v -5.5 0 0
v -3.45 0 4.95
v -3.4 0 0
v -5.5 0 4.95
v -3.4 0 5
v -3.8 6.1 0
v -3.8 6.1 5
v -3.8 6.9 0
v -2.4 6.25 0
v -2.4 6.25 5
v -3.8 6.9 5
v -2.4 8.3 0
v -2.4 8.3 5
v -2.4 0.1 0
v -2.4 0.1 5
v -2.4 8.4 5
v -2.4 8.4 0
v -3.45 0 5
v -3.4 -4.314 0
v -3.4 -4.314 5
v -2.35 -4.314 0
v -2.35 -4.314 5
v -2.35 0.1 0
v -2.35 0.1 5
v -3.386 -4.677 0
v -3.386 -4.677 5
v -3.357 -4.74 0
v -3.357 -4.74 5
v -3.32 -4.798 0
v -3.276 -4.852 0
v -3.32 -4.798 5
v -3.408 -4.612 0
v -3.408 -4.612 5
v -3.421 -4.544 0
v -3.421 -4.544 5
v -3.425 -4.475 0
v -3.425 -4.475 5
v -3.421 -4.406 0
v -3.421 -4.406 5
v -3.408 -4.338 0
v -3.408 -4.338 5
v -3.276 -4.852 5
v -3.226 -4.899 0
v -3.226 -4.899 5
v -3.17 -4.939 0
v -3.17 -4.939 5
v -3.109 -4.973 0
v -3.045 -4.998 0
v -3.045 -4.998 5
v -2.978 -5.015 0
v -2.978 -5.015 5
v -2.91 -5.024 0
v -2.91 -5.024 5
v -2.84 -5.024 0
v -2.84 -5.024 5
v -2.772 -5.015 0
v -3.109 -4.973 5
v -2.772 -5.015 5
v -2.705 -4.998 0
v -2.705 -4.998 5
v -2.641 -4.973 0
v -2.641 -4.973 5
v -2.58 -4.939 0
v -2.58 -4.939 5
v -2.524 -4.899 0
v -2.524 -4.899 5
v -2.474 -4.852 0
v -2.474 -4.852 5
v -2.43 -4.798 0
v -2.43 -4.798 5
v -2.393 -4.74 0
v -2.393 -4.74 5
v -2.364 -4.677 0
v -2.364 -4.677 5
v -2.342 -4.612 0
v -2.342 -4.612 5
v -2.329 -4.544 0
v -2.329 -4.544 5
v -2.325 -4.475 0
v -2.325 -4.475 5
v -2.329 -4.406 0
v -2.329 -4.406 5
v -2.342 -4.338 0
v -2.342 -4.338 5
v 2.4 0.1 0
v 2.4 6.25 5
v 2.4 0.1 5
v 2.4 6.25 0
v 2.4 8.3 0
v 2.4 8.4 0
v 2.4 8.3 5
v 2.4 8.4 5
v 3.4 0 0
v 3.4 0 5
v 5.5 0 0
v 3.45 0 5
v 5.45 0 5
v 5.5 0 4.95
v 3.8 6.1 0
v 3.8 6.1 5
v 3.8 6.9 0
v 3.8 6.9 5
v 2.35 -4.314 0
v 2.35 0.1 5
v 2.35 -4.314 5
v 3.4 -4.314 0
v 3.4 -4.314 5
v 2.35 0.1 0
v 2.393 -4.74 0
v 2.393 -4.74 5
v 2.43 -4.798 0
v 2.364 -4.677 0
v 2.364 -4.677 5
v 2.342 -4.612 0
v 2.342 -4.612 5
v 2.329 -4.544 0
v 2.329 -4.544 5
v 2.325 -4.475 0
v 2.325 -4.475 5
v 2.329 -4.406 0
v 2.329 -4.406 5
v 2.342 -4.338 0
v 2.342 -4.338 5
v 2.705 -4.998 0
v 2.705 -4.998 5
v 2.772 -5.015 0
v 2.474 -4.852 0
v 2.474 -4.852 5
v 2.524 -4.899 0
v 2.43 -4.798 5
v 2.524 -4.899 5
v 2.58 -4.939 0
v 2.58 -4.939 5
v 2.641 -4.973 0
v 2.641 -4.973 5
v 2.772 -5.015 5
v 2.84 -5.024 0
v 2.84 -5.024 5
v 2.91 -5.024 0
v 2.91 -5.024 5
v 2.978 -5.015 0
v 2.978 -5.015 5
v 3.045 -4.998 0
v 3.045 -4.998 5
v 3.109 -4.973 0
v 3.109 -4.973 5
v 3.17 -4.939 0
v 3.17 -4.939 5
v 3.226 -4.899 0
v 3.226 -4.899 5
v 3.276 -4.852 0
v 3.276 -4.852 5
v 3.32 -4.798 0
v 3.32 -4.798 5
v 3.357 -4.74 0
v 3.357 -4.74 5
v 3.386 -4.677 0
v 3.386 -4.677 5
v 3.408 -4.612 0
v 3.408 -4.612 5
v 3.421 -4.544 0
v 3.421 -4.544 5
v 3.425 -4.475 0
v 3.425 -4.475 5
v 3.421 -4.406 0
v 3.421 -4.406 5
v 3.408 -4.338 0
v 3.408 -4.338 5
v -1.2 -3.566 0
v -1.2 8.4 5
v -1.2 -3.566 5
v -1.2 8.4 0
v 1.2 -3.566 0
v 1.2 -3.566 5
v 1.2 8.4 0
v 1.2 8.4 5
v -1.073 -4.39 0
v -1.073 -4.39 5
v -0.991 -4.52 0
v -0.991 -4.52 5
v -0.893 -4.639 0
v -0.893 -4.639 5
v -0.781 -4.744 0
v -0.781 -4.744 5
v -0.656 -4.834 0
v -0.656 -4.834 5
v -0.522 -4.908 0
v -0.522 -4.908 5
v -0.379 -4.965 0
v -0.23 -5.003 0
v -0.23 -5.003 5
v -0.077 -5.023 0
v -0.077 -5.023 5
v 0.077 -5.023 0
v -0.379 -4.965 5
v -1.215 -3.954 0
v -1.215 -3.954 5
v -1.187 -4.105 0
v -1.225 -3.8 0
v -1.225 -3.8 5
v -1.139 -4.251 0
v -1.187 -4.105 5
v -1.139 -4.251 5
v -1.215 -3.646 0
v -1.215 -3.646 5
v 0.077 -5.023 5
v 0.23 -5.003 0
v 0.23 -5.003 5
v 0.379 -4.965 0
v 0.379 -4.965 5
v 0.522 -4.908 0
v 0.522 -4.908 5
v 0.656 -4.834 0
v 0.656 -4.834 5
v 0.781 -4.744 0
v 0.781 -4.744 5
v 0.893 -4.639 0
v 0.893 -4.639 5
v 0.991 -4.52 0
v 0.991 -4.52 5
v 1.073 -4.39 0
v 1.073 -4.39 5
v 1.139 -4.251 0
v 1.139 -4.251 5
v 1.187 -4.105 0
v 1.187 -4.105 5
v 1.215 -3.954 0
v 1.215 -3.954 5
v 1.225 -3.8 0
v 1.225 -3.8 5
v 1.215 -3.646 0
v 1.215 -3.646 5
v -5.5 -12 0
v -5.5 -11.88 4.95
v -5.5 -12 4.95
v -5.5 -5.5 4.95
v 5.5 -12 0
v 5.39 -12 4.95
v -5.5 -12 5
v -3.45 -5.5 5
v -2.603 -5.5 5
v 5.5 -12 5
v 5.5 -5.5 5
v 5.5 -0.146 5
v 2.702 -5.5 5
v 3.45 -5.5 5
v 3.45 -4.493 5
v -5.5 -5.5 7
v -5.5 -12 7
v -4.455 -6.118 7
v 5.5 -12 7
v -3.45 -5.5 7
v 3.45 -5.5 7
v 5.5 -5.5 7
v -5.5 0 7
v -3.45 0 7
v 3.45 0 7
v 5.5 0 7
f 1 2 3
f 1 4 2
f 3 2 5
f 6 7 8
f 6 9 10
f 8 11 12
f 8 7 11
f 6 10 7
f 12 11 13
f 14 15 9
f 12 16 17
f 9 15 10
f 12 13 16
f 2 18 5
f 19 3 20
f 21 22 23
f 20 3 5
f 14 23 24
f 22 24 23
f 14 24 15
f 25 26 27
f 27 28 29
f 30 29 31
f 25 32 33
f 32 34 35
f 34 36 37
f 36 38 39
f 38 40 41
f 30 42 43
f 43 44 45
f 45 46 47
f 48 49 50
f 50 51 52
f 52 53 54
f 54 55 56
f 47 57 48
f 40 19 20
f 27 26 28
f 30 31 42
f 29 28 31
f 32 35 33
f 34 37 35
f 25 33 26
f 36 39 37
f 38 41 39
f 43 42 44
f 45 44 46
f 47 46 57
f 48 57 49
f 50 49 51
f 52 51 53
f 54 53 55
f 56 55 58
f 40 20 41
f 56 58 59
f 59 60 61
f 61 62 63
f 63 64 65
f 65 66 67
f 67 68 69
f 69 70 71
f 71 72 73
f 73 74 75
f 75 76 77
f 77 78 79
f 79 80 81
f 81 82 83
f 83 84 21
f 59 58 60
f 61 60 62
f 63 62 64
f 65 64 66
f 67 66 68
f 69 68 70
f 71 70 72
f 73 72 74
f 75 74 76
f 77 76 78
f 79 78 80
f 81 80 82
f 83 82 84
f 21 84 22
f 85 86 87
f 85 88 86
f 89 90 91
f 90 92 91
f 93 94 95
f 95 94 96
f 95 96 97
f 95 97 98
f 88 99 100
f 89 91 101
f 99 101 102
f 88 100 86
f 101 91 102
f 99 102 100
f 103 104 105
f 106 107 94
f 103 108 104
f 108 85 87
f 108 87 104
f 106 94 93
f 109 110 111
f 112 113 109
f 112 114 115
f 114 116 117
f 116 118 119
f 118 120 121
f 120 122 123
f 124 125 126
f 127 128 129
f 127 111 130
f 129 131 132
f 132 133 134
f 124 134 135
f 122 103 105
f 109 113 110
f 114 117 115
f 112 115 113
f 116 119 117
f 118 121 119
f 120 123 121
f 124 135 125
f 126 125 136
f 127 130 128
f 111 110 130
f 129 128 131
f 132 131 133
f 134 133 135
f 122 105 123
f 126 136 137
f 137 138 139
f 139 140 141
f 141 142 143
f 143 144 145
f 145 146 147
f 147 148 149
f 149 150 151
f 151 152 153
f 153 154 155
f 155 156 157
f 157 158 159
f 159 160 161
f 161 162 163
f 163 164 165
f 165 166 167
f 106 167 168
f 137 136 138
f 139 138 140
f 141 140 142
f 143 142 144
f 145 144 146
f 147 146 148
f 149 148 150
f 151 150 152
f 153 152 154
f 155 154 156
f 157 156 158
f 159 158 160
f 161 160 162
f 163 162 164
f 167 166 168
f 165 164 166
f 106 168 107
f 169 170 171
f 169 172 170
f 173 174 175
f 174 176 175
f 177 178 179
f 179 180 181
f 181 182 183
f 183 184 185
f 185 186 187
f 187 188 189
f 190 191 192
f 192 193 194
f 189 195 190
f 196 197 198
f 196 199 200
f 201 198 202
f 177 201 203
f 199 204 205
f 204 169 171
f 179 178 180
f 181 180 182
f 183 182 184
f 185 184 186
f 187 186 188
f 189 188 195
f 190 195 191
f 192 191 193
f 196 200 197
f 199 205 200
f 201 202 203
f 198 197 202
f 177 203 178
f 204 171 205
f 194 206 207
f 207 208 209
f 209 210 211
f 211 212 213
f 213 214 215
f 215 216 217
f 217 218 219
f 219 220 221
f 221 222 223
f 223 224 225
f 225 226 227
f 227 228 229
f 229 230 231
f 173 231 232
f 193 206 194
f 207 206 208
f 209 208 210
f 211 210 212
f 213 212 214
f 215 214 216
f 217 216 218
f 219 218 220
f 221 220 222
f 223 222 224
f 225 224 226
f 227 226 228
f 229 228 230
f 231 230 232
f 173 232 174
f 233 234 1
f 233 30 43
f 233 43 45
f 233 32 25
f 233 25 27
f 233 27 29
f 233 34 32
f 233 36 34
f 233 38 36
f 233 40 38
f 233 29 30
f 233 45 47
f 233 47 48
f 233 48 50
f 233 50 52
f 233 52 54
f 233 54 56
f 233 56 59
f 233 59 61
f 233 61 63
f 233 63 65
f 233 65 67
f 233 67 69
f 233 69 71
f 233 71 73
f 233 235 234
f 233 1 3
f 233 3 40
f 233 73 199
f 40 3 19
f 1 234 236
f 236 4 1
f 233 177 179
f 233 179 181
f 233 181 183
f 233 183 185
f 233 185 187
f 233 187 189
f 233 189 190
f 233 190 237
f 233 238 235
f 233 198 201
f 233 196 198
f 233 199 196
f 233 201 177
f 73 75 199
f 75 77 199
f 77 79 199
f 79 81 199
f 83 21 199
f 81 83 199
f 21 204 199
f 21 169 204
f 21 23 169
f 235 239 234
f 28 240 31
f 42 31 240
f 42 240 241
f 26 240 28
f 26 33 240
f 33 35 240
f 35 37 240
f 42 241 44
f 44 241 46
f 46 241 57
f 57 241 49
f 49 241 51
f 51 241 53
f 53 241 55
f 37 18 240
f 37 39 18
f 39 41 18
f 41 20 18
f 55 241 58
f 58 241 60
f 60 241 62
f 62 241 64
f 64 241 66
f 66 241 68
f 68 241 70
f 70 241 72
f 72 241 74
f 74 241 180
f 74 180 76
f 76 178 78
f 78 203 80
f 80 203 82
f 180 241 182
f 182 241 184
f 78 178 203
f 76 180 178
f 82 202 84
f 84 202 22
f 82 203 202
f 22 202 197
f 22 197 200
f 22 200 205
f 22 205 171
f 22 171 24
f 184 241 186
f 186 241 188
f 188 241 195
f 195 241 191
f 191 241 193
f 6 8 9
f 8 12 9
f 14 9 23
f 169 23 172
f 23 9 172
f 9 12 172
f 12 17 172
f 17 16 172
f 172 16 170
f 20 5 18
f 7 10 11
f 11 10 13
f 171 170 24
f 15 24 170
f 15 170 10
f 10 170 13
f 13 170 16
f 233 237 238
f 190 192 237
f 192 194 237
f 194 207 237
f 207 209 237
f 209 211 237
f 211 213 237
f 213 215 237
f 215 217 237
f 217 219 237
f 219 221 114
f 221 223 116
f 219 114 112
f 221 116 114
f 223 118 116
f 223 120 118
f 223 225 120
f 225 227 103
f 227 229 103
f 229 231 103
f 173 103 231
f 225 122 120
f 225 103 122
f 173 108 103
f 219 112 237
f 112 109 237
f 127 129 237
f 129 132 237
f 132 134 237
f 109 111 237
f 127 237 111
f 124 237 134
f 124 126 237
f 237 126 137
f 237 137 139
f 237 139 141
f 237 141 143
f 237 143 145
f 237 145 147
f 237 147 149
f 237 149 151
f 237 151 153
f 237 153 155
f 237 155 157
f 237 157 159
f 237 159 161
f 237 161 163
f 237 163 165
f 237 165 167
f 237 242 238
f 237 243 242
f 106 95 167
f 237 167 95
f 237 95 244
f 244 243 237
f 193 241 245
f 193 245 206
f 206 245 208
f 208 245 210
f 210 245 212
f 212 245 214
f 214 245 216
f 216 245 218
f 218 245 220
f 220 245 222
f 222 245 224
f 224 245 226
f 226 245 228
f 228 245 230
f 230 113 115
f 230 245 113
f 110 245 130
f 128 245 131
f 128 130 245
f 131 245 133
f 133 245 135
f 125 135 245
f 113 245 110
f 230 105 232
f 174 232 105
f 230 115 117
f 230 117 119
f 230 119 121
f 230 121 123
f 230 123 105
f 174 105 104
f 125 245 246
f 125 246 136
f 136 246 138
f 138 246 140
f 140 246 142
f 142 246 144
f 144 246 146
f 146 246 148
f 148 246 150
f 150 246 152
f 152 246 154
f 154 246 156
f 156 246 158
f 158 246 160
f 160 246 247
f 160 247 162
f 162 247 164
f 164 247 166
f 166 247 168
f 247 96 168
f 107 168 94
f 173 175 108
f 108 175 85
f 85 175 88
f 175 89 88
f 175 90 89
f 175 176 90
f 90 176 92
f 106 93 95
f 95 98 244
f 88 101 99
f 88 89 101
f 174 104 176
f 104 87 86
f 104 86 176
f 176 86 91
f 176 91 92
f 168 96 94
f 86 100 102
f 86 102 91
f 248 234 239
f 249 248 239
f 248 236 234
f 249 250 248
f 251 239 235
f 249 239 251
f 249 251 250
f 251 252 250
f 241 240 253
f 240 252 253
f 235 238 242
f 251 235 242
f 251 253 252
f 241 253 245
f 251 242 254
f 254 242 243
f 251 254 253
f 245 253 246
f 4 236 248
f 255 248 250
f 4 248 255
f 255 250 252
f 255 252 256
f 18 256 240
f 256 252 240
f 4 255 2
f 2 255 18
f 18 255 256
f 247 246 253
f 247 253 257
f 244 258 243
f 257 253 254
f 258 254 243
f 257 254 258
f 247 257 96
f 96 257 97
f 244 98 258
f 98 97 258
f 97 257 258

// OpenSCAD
$fn = 50;

difference() {
	union() {
		translate(v = [0, 0, 0]) {
			rotate(a = [0, 0, 0]) {
				difference() {
					union() {
						translate(v = [0, 0, 0]) {
							rotate(a = [0, 0, 0]) {
								difference() {
									union() {
										translate(v = [0, 0, 0]) {
											rotate(a = [0, 0, 0]) {
												difference() {
													union() {
														translate(v = [-5.5, -12.0, 0]) {
															cube(size = [11.0, 20.4, 5.0]);
														}
													}
													union() {
														translate(v = [0, 0, -0.1]) {
															linear_extrude(height = 5.2) {
																polygon(points = [[-2.4, 0], [-2.4, 6.25], [-3.8, 6.1], [-3.8, 6.8999999999999995], [-2.4, 8.299999999999999], [-2.4, 9.399999999999999], [-5.7, 9.399999999999999], [-5.7, 0]]);
															}
														}
														translate(v = [0, 0, -0.1]) {
															linear_extrude(height = 5.2) {
																polygon(points = [[-2.35, -4.5], [-2.35, -4.3875], [-2.35, -4.275], [-2.35, -4.1625], [-2.35, -4.05], [-2.35, -3.9375], [-2.35, -3.825], [-2.35, -3.7125], [-2.35, -3.6], [-2.35, -3.4875], [-2.35, -3.375], [-2.35, -3.2625], [-2.35, -3.15], [-2.35, -3.0375], [-2.35, -2.925], [-2.35, -2.8125], [-2.35, -2.7], [-2.35, -2.5875], [-2.35, -2.475], [-2.35, -2.3625], [-2.35, -2.25], [-2.35, -2.1375], [-2.35, -2.025], [-2.35, -1.9125], [-2.35, -1.7999999999999998], [-2.35, -1.6875], [-2.35, -1.5750000000000002], [-2.35, -1.4625], [-2.35, -1.35], [-2.35, -1.2374999999999998], [-2.35, -1.125], [-2.35, -1.0125000000000002], [-2.35, -0.8999999999999999], [-2.35, -0.7875000000000001], [-2.35, -0.6749999999999998], [-2.35, -0.5625], [-2.35, -0.4500000000000002], [-2.35, -0.33750000000000036], [-2.35, -0.22499999999999964], [-2.35, -0.11249999999999982], [-2.35, 0.0], [-2.35, 0.1], [-3.4, 0.1], [-3.4, -4.5]]);
															}
														}
														translate(v = [-2.875, -4.475, -0.1]) {
															cylinder(h = 5.2, r = 0.55);
														}
														translate(v = [0, 0, -0.1]) {
															linear_extrude(height = 5.2) {
																polygon(points = [[2.4, 0], [2.4, 6.25], [3.8, 6.1], [3.8, 6.8999999999999995], [2.4, 8.299999999999999], [2.4, 9.399999999999999], [5.7, 9.399999999999999], [5.7, 0]]);
															}
														}
														translate(v = [0, 0, -0.1]) {
															linear_extrude(height = 5.2) {
																polygon(points = [[2.35, -4.5], [2.35, -4.3875], [2.35, -4.275], [2.35, -4.1625], [2.35, -4.05], [2.35, -3.9375], [2.35, -3.825], [2.35, -3.7125], [2.35, -3.6], [2.35, -3.4875], [2.35, -3.375], [2.35, -3.2625], [2.35, -3.15], [2.35, -3.0375], [2.35, -2.925], [2.35, -2.8125], [2.35, -2.7], [2.35, -2.5875], [2.35, -2.475], [2.35, -2.3625], [2.35, -2.25], [2.35, -2.1375], [2.35, -2.025], [2.35, -1.9125], [2.35, -1.7999999999999998], [2.35, -1.6875], [2.35, -1.5750000000000002], [2.35, -1.4625], [2.35, -1.35], [2.35, -1.2374999999999998], [2.35, -1.125], [2.35, -1.0125000000000002], [2.35, -0.8999999999999999], [2.35, -0.7875000000000001], [2.35, -0.6749999999999998], [2.35, -0.5625], [2.35, -0.4500000000000002], [2.35, -0.33750000000000036], [2.35, -0.22499999999999964], [2.35, -0.11249999999999982], [2.35, 0.0], [2.35, 0.1], [3.4, 0.1], [3.4, -4.5]]);
															}
														}
														translate(v = [2.875, -4.475, -0.1]) {
															cylinder(h = 5.2, r = 0.55);
														}
														translate(v = [0, 0, -0.1]) {
															linear_extrude(height = 5.2) {
																polygon(points = [[-1.2, -3.8499999999999996], [-1.2, -3.6607142857142856], [-1.2, -3.471428571428571], [-1.2, -3.2821428571428566], [-1.2, -3.0928571428571425], [-1.2, -2.9035714285714285], [-1.2, -2.714285714285714], [-1.2, -2.5249999999999995], [-1.2, -2.3357142857142854], [-1.2, -2.1464285714285714], [-1.2, -1.9571428571428569], [-1.2, -1.7678571428571423], [-1.2, -1.5785714285714283], [-1.2, -1.3892857142857138], [-1.2, -1.1999999999999997], [-1.2, -1.0107142857142852], [-1.2, -0.8214285714285712], [-1.2, -0.6321428571428567], [-1.2, -0.4428571428571426], [-1.2, -0.2535714285714281], [-1.2, -0.06428571428571406], [-1.2, 0], [-1.2, 0.12500000000000044], [-1.2, 0.31428571428571495], [-1.2, 0.503571428571429], [-1.2, 0.6928571428571431], [-1.2, 0.8821428571428571], [-1.2, 1.071428571428572], [-1.2, 1.2607142857142861], [-1.2, 1.4500000000000002], [-1.2, 1.6392857142857142], [-1.2, 1.8285714285714292], [-1.2, 2.0178571428571432], [-1.2, 2.2071428571428573], [-1.2, 2.3964285714285714], [-1.2, 2.5857142857142863], [-1.2, 2.7750000000000004], [-1.2, 2.9642857142857144], [-1.2, 3.1535714285714294], [-1.2, 3.3428571428571434], [-1.2, 3.5321428571428575], [-1.2, 3.7214285714285715], [-1.2, 3.9107142857142865], [-1.2, 4.1000000000000005], [-1.2, 4.289285714285715], [-1.2, 4.4785714285714295], [-1.2, 4.667857142857143], [-1.2, 4.857142857142858], [-1.2, 5.046428571428573], [-1.2, 5.235714285714286], [-1.2, 5.425000000000001], [-1.2, 5.614285714285714], [-1.2, 5.803571428571429], [-1.2, 5.992857142857144], [-1.2, 6.1], [-1.2, 6.182142857142857], [-1.2, 6.25], [-1.2, 6.371428571428572], [-1.2, 6.560714285714287], [-1.2, 6.75], [-1.2, 6.939285714285715], [-1.2, 7.128571428571428], [-1.2, 7.317857142857143], [-1.2, 7.507142857142858], [-1.2, 7.696428571428571], [-1.2, 7.885714285714286], [-1.2, 8.075000000000001], [-1.2, 8.264285714285714], [-1.2, 8.45357142857143], [-1.2, 8.642857142857142], [-1.2, 8.832142857142857], [-1.2, 9.021428571428572], [-1.2, 9.210714285714285], [-1.2, 9.4], [1.2, 9.4], [1.2, 9.210714285714285], [1.2, 9.021428571428572], [1.2, 8.832142857142857], [1.2, 8.642857142857142], [1.2, 8.45357142857143], [1.2, 8.264285714285714], [1.2, 8.075000000000001], [1.2, 7.885714285714286], [1.2, 7.696428571428571], [1.2, 7.507142857142858], [1.2, 7.317857142857143], [1.2, 7.128571428571428], [1.2, 6.939285714285715], [1.2, 6.75], [1.2, 6.560714285714287], [1.2, 6.371428571428572], [1.2, 6.25], [1.2, 6.182142857142857], [1.2, 6.1], [1.2, 5.992857142857144], [1.2, 5.803571428571429], [1.2, 5.614285714285714], [1.2, 5.425000000000001], [1.2, 5.235714285714286], [1.2, 5.046428571428573], [1.2, 4.857142857142858], [1.2, 4.667857142857143], [1.2, 4.4785714285714295], [1.2, 4.289285714285715], [1.2, 4.1000000000000005], [1.2, 3.9107142857142865], [1.2, 3.7214285714285715], [1.2, 3.5321428571428575], [1.2, 3.3428571428571434], [1.2, 3.1535714285714294], [1.2, 2.9642857142857144], [1.2, 2.7750000000000004], [1.2, 2.5857142857142863], [1.2, 2.3964285714285714], [1.2, 2.2071428571428573], [1.2, 2.0178571428571432], [1.2, 1.8285714285714292], [1.2, 1.6392857142857142], [1.2, 1.4500000000000002], [1.2, 1.2607142857142861], [1.2, 1.071428571428572], [1.2, 0.8821428571428571], [1.2, 0.6928571428571431], [1.2, 0.503571428571429], [1.2, 0.31428571428571495], [1.2, 0.12500000000000044], [1.2, 0], [1.2, -0.06428571428571406], [1.2, -0.2535714285714281], [1.2, -0.4428571428571426], [1.2, -0.6321428571428567], [1.2, -0.8214285714285712], [1.2, -1.0107142857142852], [1.2, -1.1999999999999997], [1.2, -1.3892857142857138], [1.2, -1.5785714285714283], [1.2, -1.7678571428571423], [1.2, -1.9571428571428569], [1.2, -2.1464285714285714], [1.2, -2.3357142857142854], [1.2, -2.5249999999999995], [1.2, -2.714285714285714], [1.2, -2.9035714285714285], [1.2, -3.0928571428571425], [1.2, -3.2821428571428566], [1.2, -3.471428571428571], [1.2, -3.6607142857142856], [1.2, -3.8499999999999996]]);
															}
														}
														translate(v = [0, -3.8, -0.1]) {
															cylinder(h = 5.2, r = 1.2249999999999999);
														}
													}
												}
											}
										}
										translate(v = [0, 0, 0]) {
											rotate(a = [0, 0, 0]) {
												difference() {
													union() {
														translate(v = [-5.5, -12.0, 4.95]) {
															cube(size = [11.0, 6.5, 2.05]);
														}
													}
													union();
												}
											}
										}
										translate(v = [-5.5, -12.0, 4.95]) {
											cube(size = [2.0500000000000003, 12.0, 2.05]);
										}
										translate(v = [3.4499999999999997, -12.0, 4.95]) {
											cube(size = [2.0500000000000003, 12.0, 2.05]);
										}
									}
									union();
								}
							}
						}
					}
					union();
				}
			}
		}
	}
	union();
}
